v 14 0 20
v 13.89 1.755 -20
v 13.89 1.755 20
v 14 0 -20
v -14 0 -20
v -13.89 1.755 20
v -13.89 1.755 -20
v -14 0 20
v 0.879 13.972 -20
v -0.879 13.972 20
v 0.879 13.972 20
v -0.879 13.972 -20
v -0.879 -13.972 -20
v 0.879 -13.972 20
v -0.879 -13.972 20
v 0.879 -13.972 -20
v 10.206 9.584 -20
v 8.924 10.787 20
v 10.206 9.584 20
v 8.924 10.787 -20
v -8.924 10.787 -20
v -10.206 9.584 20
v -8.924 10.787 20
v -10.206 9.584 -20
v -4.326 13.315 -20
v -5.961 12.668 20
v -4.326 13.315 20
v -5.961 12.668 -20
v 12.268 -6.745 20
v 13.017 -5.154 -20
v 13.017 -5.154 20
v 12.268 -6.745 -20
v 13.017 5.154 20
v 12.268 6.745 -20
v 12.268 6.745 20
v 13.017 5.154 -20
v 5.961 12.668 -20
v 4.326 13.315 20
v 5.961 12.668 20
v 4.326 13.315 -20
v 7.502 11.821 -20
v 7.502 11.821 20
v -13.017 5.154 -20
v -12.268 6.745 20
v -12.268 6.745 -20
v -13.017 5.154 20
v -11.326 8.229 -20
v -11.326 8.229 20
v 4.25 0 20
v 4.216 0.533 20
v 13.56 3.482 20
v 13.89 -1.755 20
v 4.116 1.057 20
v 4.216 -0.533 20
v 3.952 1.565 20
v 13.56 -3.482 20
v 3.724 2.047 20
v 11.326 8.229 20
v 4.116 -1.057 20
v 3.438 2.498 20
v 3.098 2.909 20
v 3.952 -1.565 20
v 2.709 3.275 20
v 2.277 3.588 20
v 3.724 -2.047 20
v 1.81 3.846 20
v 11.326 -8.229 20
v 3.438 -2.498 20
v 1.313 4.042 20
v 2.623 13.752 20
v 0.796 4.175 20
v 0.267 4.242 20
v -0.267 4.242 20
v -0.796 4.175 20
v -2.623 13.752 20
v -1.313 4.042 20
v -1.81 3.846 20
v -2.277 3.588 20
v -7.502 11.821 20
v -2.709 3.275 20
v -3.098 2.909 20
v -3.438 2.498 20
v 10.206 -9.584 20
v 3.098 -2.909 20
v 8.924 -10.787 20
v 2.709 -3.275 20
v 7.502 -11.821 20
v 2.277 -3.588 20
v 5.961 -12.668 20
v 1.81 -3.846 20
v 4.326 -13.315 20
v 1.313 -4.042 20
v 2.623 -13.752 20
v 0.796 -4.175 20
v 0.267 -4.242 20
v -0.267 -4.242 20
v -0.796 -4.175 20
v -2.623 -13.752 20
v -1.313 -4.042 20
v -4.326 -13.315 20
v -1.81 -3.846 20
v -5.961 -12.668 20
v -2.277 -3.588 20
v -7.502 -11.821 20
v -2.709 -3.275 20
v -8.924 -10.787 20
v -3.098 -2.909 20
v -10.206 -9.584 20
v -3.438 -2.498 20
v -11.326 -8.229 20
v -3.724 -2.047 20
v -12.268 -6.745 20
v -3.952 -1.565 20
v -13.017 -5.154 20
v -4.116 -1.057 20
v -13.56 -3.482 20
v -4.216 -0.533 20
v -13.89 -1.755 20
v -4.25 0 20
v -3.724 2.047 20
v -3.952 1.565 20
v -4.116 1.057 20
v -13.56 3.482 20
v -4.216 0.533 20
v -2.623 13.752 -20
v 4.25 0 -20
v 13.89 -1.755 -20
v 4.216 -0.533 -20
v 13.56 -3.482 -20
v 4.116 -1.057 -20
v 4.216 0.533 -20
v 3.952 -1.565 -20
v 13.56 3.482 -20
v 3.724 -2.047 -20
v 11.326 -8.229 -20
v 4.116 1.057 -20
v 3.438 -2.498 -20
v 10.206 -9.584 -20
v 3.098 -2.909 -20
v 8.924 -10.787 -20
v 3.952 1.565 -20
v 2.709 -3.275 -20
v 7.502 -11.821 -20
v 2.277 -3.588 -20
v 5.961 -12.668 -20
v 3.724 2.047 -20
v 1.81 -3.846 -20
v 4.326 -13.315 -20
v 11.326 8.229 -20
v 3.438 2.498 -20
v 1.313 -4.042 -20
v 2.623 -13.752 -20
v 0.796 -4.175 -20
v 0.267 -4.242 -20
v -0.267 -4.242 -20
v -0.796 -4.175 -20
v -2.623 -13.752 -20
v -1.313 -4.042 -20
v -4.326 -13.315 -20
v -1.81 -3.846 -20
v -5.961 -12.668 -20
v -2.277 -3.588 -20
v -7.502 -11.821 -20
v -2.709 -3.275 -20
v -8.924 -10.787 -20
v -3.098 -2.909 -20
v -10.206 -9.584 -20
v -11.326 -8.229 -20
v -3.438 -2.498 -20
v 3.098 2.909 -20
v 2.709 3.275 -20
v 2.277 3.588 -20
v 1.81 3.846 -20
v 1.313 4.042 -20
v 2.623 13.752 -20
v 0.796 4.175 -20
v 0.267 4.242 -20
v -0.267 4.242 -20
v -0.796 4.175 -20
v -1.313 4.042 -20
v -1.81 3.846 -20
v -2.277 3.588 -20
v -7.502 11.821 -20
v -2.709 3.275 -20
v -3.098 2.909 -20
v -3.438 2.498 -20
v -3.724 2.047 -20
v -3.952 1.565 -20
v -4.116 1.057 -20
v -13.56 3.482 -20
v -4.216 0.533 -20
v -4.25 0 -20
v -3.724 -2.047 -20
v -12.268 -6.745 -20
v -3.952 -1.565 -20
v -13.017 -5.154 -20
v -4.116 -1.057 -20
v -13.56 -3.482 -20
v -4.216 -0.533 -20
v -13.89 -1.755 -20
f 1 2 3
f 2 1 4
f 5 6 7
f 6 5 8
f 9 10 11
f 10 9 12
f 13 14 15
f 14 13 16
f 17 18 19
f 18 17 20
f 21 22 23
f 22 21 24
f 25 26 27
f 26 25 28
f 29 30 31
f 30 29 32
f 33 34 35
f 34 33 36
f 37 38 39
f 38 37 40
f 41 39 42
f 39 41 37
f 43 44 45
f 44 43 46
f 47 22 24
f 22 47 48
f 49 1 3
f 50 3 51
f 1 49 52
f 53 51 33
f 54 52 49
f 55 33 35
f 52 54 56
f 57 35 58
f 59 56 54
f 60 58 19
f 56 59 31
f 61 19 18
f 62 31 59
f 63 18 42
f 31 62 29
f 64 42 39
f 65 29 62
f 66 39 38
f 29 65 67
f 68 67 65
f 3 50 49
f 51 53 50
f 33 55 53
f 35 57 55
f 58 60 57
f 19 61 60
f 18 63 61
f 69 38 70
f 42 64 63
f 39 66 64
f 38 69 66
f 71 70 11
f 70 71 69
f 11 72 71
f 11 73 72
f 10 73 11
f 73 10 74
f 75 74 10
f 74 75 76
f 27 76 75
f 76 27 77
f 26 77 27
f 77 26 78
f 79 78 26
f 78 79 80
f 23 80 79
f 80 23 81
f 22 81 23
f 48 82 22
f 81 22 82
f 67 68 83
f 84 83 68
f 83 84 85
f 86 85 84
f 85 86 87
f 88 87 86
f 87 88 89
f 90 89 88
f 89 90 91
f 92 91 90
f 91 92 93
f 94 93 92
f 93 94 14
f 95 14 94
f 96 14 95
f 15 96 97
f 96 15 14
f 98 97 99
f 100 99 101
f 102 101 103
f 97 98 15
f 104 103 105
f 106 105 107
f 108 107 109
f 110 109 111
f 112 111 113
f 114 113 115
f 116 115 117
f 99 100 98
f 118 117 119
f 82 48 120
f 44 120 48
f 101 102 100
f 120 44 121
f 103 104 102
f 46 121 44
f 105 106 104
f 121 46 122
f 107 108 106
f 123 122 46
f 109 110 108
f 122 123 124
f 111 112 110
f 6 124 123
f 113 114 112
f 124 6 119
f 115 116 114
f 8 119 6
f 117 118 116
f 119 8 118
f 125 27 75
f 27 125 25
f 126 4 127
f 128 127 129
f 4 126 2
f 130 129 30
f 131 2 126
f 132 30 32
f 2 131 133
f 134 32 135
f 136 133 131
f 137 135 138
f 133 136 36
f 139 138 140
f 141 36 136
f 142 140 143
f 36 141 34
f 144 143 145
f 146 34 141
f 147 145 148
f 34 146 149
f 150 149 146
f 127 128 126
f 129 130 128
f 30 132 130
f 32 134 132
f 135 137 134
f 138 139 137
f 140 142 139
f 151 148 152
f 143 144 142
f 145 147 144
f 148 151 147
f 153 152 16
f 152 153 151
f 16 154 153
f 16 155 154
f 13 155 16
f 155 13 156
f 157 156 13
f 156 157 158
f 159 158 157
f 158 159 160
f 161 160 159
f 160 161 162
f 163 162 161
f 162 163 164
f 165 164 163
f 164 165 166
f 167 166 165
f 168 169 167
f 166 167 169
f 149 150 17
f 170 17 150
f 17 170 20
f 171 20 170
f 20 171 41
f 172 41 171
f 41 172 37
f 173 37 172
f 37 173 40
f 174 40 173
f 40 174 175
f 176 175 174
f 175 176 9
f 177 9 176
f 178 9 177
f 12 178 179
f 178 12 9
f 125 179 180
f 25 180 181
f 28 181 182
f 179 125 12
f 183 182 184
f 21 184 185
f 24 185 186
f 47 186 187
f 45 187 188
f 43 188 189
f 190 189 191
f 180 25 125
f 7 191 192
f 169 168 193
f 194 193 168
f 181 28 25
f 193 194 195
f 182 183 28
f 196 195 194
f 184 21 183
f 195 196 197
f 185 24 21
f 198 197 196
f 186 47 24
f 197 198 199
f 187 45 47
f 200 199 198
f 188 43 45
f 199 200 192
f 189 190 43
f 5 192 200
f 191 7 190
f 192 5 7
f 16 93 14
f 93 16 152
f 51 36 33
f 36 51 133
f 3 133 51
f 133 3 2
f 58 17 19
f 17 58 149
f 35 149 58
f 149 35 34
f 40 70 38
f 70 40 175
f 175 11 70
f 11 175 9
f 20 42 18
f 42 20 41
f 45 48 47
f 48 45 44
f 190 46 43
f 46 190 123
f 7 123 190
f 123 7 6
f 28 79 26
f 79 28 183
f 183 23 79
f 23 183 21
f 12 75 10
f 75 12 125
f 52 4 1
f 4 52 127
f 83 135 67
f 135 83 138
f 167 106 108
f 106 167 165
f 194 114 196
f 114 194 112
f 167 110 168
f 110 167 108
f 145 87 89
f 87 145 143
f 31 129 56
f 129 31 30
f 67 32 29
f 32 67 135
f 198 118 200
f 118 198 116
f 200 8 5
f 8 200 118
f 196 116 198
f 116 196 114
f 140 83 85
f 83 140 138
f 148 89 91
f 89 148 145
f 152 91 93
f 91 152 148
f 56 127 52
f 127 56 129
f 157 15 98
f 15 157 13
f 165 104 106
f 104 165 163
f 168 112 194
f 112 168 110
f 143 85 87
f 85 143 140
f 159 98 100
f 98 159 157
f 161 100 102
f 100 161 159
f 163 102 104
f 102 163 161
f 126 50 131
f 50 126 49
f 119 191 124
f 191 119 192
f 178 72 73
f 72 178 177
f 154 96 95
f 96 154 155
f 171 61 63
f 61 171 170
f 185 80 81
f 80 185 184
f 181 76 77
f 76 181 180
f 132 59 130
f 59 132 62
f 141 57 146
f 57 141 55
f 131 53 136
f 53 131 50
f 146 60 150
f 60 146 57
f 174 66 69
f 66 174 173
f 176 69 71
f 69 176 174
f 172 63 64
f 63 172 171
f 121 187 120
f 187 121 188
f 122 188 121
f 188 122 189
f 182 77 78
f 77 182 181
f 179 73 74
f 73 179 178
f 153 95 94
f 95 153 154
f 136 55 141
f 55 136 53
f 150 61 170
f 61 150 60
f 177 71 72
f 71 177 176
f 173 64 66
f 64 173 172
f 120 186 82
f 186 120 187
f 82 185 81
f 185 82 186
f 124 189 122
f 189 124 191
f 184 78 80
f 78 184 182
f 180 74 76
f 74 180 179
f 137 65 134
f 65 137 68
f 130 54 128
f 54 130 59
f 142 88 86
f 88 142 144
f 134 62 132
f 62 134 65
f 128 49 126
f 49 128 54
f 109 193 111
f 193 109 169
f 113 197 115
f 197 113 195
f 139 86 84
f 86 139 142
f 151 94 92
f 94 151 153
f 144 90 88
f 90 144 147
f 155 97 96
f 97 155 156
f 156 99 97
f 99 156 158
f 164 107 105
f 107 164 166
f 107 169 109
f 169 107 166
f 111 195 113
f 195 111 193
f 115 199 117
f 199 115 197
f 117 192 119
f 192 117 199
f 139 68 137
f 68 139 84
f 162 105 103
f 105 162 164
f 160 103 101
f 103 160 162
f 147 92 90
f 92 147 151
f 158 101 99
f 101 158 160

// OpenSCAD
$fn = 50;


difference() {
	union() {
		translate(v = [0, 0, -20.0000000000]) {
			cylinder(h = 40, r = 14.0000000000);
		}
	}
	union() {
		translate(v = [0, 0, -100.0000000000]) {
			cylinder(h = 200, r = 4.2500000000);
		}
	}
}
